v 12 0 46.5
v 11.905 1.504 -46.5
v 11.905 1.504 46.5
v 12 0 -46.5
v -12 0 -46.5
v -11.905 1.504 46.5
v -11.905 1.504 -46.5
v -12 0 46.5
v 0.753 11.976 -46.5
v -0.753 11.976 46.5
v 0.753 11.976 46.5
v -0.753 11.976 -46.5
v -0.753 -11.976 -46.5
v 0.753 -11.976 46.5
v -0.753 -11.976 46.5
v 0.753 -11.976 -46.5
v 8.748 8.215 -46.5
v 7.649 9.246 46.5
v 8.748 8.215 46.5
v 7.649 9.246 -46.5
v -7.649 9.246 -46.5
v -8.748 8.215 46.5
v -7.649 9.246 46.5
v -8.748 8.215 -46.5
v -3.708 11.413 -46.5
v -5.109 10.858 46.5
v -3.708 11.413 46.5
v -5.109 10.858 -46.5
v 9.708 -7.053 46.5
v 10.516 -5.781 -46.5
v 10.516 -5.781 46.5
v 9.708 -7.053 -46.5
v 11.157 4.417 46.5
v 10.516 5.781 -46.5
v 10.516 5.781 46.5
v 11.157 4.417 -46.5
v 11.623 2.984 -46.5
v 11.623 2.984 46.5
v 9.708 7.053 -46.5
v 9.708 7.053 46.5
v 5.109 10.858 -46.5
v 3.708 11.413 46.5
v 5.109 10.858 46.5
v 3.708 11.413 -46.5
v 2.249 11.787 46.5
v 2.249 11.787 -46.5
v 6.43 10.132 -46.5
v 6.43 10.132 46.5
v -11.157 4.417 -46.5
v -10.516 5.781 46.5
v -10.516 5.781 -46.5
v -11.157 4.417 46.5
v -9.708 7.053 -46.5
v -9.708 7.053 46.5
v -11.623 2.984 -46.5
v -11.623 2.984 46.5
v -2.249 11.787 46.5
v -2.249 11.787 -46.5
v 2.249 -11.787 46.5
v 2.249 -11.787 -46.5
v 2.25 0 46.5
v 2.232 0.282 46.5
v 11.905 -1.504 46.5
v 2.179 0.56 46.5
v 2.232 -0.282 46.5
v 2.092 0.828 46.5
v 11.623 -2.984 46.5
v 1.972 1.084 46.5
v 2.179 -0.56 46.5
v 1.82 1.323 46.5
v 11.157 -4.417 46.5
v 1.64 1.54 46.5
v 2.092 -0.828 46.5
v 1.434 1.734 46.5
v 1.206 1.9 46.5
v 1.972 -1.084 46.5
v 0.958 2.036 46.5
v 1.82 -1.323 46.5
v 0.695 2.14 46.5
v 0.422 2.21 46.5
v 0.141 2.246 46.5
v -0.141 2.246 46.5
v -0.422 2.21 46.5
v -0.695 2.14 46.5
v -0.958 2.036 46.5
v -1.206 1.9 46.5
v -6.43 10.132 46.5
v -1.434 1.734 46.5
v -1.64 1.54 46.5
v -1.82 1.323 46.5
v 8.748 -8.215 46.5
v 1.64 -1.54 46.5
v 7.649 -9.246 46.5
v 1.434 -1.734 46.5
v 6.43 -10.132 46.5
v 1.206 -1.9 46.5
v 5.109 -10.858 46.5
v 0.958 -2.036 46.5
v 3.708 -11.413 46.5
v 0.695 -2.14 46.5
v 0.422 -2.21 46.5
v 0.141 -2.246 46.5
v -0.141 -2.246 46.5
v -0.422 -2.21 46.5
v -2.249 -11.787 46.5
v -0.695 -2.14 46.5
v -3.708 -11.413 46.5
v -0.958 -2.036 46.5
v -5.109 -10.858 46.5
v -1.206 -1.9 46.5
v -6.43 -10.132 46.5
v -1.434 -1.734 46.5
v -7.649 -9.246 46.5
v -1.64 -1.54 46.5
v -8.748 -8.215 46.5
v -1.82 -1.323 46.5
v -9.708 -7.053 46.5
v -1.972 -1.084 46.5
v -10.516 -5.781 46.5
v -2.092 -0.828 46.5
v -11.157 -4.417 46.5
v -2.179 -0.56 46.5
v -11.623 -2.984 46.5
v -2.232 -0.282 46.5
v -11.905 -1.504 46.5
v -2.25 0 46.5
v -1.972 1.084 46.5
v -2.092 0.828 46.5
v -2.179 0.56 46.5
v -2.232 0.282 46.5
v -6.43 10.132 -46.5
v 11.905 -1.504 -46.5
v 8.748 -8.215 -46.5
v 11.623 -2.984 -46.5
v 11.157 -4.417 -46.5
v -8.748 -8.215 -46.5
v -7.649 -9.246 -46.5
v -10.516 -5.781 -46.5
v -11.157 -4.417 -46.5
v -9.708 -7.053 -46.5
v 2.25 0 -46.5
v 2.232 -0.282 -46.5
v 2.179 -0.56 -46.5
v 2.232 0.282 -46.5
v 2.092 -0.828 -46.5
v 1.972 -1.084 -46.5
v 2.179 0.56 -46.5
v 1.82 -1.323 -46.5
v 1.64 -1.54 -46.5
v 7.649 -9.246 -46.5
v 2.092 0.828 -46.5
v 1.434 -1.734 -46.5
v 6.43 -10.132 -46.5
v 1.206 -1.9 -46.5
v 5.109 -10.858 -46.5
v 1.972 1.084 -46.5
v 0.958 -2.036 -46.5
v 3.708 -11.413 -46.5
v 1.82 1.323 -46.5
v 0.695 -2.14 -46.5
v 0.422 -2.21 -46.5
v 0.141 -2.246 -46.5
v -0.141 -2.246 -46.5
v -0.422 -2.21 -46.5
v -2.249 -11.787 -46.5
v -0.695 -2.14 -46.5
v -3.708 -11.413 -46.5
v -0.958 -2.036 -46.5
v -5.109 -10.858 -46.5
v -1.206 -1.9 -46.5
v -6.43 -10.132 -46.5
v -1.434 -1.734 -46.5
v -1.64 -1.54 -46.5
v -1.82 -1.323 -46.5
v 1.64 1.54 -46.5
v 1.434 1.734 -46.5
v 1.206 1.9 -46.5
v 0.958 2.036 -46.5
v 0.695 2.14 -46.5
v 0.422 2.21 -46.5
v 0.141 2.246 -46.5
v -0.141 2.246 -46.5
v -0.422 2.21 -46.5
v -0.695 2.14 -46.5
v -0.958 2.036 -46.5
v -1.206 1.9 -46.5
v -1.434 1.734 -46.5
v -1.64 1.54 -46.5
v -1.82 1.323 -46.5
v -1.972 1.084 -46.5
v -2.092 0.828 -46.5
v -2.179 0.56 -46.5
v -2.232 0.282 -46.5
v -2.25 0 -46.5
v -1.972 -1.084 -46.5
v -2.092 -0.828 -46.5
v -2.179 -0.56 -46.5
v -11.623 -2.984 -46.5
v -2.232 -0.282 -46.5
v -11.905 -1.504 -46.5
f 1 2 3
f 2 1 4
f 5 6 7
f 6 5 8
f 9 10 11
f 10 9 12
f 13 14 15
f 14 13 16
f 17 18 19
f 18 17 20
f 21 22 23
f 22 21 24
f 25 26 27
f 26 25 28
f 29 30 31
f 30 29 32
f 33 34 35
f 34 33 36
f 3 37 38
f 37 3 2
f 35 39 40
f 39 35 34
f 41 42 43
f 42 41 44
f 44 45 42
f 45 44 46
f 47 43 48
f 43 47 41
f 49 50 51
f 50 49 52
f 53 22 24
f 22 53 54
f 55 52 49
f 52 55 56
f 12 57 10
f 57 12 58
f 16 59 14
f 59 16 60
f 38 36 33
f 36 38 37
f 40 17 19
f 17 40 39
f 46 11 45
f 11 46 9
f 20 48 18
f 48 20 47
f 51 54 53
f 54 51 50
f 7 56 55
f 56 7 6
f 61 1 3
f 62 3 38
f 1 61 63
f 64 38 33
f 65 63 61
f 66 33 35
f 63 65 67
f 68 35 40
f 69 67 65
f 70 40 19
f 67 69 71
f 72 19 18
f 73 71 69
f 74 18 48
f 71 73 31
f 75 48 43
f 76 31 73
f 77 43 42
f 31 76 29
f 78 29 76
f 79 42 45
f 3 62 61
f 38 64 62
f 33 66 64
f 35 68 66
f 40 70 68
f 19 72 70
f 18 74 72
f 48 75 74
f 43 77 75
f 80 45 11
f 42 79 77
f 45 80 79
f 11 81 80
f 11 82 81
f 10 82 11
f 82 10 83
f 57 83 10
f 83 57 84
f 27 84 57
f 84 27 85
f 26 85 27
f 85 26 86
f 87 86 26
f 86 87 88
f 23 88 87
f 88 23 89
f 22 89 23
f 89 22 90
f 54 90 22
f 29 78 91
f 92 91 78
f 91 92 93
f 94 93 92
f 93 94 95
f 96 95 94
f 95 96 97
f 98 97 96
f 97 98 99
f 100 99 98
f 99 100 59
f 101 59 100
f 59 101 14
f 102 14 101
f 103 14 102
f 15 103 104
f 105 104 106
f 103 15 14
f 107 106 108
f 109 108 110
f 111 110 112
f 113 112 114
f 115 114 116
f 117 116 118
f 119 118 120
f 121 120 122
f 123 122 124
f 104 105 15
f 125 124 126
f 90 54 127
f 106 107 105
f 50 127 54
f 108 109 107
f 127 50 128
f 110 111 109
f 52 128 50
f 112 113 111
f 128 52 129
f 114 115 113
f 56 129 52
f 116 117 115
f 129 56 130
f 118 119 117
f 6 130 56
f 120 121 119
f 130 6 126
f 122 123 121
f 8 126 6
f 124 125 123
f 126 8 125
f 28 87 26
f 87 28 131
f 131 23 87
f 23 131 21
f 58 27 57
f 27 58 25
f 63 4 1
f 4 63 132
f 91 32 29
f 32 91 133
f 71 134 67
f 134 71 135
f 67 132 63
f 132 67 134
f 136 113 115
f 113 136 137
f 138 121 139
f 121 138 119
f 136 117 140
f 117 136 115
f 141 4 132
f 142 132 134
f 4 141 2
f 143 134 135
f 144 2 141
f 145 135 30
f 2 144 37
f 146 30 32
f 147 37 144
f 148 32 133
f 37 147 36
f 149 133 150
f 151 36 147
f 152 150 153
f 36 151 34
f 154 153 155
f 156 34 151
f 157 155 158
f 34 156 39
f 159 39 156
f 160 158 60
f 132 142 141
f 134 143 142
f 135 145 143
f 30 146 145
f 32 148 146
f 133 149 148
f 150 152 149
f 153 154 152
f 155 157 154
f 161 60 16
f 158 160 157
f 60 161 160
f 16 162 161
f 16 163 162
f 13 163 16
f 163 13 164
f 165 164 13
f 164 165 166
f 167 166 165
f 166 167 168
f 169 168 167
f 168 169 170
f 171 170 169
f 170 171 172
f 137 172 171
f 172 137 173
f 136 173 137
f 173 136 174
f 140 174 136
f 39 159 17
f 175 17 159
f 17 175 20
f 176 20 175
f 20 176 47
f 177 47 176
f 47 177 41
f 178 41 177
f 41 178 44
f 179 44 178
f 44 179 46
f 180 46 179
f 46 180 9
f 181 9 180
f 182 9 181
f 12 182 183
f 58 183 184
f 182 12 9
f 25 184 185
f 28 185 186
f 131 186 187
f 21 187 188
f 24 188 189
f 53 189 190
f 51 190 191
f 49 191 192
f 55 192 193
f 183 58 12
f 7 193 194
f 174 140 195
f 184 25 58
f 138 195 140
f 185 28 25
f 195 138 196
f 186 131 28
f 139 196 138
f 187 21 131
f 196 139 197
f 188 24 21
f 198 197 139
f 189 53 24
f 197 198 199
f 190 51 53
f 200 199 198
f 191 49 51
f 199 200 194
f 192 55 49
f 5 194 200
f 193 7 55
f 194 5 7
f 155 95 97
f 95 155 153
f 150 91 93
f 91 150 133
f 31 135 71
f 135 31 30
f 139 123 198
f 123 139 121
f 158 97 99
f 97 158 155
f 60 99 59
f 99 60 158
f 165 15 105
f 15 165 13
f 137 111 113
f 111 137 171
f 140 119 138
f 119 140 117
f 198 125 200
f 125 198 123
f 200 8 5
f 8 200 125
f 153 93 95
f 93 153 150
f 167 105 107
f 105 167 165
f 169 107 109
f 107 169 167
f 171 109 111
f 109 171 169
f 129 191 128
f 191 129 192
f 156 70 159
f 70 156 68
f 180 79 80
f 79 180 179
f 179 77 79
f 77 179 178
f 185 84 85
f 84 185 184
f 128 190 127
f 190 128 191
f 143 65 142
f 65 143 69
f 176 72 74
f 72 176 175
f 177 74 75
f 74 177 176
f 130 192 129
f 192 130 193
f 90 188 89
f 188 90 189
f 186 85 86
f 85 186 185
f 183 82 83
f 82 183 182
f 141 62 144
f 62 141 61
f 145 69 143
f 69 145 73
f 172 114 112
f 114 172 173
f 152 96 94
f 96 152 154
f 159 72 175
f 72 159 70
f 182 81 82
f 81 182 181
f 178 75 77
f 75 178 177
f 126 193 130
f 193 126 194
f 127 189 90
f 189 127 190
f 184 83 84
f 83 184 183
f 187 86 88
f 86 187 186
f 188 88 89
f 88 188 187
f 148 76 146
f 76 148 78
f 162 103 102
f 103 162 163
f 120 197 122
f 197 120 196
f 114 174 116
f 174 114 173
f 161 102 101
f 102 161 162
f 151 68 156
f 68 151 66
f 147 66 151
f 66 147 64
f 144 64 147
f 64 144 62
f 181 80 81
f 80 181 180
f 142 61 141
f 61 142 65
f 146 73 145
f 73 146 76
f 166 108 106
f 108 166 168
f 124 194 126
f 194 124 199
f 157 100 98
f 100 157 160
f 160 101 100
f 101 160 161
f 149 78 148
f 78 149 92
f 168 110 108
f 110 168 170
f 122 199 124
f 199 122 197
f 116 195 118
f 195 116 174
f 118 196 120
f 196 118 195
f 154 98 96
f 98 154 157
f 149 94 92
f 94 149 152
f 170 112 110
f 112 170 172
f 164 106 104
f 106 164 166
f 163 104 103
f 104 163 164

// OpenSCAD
$fn = 50;


difference() {
	union() {
		translate(v = [0, 0, -46.5000000000]) {
			cylinder(h = 93, r = 12.0000000000);
		}
	}
	union() {
		translate(v = [0, 0, -100.0000000000]) {
			cylinder(h = 200, r = 2.2500000000);
		}
	}
}
